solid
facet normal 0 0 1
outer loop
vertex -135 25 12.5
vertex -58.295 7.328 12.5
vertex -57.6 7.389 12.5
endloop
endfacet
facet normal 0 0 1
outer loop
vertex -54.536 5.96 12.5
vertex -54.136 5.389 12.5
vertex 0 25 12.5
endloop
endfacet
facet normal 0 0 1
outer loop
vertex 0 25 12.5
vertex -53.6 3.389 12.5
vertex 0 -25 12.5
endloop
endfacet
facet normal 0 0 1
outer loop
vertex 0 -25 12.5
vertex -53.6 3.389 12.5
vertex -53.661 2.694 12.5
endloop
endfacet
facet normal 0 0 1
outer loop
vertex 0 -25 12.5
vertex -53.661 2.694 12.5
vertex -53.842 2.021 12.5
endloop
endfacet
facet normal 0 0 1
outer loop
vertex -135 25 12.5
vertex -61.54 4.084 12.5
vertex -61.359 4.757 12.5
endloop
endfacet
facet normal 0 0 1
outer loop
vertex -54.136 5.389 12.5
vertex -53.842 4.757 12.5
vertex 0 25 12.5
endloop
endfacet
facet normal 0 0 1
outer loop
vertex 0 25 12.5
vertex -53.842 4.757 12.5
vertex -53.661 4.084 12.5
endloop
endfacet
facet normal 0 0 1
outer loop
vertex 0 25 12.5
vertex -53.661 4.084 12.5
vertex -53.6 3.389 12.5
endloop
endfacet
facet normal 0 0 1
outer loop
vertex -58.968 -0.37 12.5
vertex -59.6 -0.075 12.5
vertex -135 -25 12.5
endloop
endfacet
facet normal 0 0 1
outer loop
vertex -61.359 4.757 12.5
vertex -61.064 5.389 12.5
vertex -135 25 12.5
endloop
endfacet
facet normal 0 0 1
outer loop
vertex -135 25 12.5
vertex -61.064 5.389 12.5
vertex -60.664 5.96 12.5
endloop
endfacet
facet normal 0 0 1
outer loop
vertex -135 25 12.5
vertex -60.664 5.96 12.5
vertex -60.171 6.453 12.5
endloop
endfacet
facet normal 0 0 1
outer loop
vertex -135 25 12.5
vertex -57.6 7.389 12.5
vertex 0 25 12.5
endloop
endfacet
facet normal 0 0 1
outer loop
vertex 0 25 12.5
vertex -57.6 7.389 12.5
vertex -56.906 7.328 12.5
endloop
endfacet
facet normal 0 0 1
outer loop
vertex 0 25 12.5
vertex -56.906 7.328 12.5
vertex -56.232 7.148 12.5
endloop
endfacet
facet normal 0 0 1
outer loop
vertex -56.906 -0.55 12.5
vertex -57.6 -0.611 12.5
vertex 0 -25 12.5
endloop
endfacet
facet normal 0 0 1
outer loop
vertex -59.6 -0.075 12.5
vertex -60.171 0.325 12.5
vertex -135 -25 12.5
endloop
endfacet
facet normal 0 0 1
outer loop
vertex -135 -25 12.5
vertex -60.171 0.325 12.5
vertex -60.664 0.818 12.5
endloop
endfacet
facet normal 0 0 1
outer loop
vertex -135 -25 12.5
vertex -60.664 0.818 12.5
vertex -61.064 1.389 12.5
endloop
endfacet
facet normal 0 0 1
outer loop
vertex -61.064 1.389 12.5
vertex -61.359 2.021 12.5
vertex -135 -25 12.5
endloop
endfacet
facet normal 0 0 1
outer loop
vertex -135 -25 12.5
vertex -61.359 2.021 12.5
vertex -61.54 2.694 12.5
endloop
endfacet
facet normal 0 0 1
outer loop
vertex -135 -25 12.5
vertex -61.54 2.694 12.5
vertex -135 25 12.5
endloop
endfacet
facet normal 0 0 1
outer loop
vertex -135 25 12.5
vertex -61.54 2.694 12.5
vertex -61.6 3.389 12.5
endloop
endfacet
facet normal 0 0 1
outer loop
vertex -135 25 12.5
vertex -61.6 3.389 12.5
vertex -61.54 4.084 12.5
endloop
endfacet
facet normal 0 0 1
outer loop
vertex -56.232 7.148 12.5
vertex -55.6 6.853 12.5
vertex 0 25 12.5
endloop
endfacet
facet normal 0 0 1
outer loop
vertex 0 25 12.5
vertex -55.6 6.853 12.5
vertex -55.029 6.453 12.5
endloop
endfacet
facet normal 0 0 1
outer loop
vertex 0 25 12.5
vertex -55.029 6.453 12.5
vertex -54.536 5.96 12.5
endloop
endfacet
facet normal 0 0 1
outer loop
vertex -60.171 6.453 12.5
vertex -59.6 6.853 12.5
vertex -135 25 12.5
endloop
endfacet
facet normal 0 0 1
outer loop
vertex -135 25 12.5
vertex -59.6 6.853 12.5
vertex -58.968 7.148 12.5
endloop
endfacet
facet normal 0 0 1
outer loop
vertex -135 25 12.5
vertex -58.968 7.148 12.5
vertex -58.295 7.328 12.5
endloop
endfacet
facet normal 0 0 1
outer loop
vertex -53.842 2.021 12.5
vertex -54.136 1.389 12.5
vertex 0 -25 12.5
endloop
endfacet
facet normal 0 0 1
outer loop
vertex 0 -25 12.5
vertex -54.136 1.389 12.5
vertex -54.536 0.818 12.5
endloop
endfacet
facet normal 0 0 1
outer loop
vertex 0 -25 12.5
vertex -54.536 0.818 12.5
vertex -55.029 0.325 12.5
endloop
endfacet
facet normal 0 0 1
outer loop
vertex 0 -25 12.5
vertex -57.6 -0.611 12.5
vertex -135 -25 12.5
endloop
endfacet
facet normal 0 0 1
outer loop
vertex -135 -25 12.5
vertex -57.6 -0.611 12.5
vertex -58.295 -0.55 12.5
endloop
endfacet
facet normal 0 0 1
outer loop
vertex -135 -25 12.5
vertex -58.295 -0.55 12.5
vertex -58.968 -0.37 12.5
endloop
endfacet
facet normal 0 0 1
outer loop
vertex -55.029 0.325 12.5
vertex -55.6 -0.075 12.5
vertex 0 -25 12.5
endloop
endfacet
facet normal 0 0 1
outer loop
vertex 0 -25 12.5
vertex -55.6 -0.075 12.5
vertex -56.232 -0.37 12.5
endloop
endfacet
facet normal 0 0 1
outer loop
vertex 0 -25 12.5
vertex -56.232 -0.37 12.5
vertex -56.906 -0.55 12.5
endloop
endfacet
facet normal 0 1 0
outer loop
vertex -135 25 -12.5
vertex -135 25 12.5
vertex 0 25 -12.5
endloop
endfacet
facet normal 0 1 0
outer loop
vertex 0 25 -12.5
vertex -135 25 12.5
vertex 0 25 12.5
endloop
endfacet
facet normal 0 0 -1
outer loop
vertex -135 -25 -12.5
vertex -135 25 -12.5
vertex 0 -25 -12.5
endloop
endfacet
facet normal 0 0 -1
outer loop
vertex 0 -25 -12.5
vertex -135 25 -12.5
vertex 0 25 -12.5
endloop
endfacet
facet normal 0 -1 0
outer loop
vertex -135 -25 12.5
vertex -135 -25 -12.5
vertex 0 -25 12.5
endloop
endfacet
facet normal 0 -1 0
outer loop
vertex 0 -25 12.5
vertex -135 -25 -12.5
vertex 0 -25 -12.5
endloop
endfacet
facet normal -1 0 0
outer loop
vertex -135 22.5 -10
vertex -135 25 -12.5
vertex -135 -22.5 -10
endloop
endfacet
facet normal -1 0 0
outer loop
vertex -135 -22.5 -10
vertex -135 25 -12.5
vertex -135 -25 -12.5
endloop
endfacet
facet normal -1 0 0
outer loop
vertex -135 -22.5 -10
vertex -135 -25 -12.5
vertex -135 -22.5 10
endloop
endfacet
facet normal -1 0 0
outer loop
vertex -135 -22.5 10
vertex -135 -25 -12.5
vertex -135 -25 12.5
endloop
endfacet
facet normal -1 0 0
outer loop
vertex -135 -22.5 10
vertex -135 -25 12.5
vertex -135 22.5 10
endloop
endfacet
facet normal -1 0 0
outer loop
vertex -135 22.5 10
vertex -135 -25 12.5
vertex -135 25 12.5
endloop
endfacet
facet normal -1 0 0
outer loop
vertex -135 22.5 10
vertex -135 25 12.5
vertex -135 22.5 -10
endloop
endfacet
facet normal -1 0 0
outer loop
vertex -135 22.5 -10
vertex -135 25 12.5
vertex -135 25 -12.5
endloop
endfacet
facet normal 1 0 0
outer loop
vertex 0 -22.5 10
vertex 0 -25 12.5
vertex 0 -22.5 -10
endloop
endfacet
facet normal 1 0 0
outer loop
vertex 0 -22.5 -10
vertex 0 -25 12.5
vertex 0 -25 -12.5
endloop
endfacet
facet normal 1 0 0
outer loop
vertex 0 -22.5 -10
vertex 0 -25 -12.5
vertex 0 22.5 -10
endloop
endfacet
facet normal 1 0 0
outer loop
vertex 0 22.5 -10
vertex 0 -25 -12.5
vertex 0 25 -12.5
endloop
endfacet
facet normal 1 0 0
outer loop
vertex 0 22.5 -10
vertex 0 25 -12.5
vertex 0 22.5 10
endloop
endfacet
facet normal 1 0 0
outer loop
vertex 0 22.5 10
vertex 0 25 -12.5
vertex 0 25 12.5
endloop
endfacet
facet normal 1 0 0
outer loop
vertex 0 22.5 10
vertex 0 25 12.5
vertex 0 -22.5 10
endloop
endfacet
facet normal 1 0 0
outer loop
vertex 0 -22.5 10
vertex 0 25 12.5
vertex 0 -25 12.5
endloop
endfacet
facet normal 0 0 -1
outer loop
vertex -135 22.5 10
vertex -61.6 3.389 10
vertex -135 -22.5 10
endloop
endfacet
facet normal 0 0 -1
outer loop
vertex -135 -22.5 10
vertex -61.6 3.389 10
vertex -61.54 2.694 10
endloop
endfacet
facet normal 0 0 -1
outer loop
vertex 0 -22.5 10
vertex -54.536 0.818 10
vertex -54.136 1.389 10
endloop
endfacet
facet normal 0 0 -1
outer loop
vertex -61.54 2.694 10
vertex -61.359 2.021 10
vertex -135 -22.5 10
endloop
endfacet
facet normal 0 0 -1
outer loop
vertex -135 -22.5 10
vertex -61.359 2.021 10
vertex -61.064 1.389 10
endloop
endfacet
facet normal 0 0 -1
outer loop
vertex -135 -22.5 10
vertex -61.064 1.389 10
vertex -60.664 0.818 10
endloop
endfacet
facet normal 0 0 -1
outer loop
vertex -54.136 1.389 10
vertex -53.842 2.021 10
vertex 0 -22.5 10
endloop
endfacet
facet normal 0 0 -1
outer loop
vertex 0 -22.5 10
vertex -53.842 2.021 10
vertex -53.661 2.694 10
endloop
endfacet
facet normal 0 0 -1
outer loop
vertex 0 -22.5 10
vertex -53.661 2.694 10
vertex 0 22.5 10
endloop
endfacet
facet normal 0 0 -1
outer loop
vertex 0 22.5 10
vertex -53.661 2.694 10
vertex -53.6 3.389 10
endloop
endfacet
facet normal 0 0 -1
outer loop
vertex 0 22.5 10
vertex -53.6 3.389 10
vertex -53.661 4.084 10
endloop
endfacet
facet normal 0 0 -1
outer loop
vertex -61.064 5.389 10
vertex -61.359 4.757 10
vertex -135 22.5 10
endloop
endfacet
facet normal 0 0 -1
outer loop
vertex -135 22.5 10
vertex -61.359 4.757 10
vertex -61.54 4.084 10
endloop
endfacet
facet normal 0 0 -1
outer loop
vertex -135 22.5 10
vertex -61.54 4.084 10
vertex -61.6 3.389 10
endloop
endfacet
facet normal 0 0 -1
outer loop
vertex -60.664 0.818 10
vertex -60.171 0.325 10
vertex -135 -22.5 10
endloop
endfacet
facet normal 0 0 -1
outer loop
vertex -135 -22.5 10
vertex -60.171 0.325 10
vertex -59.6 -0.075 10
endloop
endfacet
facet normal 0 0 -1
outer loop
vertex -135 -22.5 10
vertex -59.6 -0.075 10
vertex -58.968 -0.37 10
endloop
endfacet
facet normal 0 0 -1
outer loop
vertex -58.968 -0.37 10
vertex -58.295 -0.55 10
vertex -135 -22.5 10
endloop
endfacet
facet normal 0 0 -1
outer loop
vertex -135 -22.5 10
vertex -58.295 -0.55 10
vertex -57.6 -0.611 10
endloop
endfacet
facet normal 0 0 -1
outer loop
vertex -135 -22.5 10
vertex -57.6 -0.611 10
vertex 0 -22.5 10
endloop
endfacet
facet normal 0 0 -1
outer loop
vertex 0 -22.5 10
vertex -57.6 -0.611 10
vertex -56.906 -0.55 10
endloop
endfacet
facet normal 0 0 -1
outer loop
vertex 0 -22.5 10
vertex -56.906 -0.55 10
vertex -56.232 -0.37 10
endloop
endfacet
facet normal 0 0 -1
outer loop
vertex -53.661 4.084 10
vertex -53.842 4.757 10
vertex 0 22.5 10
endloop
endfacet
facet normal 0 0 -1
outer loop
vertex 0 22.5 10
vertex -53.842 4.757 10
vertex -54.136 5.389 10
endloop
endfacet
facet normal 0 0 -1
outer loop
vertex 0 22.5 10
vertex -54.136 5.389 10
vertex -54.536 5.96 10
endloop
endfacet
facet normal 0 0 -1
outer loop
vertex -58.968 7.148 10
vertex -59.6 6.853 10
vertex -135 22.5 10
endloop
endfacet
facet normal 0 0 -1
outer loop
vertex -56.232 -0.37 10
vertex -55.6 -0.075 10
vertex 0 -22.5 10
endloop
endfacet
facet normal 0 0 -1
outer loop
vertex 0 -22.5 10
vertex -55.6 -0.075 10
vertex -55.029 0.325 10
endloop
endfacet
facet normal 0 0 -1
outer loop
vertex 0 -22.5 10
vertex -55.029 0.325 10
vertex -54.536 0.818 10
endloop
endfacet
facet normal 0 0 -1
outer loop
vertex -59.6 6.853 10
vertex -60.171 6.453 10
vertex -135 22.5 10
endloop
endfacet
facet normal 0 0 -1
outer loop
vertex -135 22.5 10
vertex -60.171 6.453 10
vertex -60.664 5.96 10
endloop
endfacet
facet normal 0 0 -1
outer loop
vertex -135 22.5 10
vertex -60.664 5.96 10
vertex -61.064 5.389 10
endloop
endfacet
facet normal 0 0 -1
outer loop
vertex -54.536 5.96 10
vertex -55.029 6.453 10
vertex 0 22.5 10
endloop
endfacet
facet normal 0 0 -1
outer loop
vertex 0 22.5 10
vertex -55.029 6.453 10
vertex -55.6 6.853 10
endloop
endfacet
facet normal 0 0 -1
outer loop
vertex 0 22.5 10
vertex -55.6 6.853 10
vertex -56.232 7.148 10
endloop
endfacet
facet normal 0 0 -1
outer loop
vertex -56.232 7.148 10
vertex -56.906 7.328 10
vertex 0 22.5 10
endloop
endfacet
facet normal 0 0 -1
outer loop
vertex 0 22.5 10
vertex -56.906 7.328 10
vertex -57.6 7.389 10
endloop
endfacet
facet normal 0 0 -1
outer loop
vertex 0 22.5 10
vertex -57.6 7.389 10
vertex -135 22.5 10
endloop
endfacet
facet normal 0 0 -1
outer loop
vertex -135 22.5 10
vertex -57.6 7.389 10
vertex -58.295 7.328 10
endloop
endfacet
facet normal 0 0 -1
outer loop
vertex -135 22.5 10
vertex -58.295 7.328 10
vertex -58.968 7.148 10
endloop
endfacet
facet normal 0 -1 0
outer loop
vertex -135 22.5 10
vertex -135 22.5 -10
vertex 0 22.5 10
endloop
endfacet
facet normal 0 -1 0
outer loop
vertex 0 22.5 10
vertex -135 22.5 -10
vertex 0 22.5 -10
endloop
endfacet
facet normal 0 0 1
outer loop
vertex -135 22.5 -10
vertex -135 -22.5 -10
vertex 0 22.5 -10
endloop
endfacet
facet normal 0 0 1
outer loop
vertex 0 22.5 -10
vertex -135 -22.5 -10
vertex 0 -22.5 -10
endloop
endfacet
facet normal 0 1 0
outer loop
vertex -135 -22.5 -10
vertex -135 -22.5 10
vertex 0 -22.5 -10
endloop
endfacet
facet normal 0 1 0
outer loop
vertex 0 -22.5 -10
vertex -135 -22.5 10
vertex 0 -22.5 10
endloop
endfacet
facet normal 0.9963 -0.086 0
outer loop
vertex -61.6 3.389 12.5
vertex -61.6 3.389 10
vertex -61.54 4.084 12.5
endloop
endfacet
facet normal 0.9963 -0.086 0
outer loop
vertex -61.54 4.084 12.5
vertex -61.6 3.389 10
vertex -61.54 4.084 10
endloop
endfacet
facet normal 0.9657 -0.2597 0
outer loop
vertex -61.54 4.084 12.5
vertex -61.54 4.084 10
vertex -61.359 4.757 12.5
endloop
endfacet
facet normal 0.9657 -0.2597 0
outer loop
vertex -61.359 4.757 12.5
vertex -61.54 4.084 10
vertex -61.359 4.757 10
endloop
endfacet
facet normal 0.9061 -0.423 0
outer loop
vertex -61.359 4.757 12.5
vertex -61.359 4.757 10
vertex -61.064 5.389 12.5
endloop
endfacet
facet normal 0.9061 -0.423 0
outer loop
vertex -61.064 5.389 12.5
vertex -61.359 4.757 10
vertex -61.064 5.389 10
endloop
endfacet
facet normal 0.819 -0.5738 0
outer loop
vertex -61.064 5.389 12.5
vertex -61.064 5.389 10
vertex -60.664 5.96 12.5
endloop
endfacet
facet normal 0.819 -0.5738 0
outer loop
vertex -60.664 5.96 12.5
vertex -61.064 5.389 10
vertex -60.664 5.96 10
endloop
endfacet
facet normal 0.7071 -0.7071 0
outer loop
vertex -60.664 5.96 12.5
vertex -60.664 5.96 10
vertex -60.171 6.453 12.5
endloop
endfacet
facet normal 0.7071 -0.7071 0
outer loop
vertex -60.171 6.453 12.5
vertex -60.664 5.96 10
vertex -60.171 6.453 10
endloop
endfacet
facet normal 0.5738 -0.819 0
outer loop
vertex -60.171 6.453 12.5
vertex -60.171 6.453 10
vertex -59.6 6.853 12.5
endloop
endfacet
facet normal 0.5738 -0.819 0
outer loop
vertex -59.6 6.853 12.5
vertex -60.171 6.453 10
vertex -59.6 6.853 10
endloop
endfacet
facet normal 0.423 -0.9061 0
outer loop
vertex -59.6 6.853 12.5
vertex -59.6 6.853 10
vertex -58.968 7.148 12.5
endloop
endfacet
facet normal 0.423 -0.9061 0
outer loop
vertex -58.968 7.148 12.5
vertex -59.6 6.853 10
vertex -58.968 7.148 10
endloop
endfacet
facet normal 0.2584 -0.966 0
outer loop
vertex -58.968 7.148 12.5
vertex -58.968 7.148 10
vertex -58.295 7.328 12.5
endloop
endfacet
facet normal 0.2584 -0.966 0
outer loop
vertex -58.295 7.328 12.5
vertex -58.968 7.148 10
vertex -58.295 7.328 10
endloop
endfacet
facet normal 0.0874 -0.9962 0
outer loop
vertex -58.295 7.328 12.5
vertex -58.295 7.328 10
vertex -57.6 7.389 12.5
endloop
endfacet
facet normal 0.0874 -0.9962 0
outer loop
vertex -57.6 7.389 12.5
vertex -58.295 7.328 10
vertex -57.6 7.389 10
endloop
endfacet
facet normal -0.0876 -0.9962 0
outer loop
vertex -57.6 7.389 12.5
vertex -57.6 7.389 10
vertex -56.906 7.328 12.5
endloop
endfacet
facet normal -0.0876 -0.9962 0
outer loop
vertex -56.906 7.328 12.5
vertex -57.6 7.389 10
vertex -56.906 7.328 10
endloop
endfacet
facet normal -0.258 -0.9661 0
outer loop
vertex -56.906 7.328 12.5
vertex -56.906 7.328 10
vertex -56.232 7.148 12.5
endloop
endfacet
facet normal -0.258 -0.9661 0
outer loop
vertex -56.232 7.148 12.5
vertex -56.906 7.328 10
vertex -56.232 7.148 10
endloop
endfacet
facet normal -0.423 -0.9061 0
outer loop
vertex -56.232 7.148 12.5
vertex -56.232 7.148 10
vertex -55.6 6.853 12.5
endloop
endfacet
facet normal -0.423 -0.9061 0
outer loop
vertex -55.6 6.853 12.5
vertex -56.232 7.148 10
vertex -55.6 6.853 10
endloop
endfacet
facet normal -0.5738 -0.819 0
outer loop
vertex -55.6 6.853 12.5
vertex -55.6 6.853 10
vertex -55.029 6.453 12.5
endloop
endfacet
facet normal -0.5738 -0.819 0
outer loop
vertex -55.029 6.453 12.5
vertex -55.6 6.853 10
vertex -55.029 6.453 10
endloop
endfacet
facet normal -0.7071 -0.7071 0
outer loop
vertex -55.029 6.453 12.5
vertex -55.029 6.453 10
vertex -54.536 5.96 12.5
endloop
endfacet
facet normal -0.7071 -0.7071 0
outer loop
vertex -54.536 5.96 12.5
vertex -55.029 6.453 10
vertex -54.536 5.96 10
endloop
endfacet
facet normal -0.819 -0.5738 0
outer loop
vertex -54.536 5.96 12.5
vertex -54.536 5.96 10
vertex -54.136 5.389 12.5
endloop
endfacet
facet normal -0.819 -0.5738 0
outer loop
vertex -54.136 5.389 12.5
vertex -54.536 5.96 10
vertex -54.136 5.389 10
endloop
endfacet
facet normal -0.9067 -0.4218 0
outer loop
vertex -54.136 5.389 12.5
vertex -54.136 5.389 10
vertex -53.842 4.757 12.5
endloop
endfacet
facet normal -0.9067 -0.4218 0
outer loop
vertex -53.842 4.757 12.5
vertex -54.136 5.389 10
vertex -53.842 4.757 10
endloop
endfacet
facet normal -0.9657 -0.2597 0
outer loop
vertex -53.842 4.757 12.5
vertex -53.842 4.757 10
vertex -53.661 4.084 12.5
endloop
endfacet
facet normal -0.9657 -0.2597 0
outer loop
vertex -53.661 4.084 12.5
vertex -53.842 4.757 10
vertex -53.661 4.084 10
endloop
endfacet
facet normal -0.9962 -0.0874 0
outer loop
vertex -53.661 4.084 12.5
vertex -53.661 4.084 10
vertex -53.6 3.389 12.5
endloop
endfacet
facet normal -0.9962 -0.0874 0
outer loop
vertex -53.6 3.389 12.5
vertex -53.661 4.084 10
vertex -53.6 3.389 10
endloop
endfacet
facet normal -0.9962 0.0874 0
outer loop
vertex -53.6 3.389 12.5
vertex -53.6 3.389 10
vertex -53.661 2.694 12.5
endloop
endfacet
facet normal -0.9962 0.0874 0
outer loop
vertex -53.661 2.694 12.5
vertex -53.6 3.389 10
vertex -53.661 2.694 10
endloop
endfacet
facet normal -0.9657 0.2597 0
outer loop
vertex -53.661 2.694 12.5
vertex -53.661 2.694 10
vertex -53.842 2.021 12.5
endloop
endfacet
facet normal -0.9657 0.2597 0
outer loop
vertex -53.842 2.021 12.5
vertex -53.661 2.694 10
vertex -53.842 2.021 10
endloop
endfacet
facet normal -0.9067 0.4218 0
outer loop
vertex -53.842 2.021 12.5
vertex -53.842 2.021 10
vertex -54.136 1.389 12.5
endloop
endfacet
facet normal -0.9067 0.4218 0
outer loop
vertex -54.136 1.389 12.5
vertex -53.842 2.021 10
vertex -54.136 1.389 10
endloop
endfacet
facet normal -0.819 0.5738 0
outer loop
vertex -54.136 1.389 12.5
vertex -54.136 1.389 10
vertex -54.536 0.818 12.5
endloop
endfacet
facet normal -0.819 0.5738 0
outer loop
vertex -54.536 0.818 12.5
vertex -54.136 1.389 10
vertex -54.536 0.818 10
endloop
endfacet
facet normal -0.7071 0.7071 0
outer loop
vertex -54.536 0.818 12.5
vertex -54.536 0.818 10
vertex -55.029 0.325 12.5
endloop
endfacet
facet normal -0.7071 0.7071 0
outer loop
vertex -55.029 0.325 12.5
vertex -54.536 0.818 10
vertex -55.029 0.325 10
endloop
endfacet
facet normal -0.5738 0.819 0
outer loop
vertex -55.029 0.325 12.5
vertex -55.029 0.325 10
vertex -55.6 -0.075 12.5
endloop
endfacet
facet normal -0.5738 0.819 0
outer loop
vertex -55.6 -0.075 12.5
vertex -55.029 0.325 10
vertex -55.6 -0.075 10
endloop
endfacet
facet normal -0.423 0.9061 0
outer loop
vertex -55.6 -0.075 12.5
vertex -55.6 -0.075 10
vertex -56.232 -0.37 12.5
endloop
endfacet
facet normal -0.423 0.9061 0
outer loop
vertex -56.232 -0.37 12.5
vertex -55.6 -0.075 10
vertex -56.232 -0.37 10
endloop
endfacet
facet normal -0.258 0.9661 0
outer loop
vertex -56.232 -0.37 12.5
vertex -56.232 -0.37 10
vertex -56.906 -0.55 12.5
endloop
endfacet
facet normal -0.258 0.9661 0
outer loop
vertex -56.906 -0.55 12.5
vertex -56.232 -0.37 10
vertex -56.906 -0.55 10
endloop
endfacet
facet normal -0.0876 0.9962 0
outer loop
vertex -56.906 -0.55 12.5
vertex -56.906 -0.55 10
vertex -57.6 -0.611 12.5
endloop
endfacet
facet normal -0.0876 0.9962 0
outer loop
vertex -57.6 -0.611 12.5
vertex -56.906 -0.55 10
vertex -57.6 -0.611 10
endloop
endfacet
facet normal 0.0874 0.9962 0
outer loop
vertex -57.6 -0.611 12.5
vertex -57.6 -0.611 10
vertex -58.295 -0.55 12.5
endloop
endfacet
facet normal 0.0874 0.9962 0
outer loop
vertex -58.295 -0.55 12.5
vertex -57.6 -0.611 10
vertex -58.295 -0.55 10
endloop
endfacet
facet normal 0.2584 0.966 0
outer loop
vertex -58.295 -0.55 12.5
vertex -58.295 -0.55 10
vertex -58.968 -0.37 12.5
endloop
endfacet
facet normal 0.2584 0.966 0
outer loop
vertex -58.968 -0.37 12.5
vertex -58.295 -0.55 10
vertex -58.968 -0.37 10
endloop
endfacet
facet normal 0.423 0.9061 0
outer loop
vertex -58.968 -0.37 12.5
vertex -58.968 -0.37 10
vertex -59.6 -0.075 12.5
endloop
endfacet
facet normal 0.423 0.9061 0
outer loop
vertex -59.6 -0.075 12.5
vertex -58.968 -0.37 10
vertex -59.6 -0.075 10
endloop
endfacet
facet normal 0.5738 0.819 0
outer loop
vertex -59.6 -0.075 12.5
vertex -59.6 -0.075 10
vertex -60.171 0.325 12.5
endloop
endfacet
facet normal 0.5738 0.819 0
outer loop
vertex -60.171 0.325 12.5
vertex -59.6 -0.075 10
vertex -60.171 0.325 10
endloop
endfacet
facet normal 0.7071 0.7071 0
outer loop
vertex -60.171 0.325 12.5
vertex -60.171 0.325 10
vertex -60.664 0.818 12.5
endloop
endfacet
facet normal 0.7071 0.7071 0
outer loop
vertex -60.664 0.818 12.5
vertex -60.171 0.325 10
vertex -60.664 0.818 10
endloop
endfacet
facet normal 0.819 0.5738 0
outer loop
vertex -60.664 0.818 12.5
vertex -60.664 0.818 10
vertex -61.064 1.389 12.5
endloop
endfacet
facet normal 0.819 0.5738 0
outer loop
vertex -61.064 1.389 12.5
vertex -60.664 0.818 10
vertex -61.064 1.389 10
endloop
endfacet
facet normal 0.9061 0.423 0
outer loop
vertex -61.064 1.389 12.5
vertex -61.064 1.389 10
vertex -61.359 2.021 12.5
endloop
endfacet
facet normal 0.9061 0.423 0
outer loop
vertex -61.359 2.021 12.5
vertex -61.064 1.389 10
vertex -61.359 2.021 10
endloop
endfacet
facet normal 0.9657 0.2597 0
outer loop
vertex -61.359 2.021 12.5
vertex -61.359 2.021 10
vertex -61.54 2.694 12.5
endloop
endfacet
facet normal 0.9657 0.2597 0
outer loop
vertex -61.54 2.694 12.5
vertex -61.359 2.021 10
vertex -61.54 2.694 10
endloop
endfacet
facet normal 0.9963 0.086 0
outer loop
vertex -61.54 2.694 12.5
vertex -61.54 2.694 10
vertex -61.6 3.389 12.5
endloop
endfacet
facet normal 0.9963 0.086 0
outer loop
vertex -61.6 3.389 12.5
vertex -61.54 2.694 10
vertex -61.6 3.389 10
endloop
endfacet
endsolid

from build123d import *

# Parameters (mm, degrees)
SKETCH5_W           = 25
SKETCH5_H           = 50
BOSS_EXTRUDE2_DEPTH = 135
SKETCH6_W           = 20
SKETCH6_H           = 45
CUT_EXTRUDE1_DEPTH  = 135
SKETCH7_R           = 4
CUT_EXTRUDE4_DEPTH  = 13.5


with BuildPart() as part:
    # Sketch5 → Boss-Extrude2 (new body)
    with BuildSketch(Plane(origin=(0, 0, 0), x_dir=(0, 0, -1), z_dir=(1, 0, 0))):
        Rectangle(SKETCH5_W, SKETCH5_H)
    extrude(amount=-BOSS_EXTRUDE2_DEPTH)

    # Sketch6 → Cut-Extrude1 (cut)
    with BuildSketch(Plane(origin=(0, 0, 0), x_dir=(0, 0, -1), z_dir=(1, 0, 0))):
        Rectangle(SKETCH6_W, SKETCH6_H)
    extrude(amount=-CUT_EXTRUDE1_DEPTH, mode=Mode.SUBTRACT)

    # Sketch7 → Cut-Extrude4 (cut, through all)
    with BuildSketch(Plane.XY):
        with Locations((-57.600290454, 3.389089755)):
            Circle(SKETCH7_R)
    extrude(amount=CUT_EXTRUDE4_DEPTH, mode=Mode.SUBTRACT)


solid = part.part
